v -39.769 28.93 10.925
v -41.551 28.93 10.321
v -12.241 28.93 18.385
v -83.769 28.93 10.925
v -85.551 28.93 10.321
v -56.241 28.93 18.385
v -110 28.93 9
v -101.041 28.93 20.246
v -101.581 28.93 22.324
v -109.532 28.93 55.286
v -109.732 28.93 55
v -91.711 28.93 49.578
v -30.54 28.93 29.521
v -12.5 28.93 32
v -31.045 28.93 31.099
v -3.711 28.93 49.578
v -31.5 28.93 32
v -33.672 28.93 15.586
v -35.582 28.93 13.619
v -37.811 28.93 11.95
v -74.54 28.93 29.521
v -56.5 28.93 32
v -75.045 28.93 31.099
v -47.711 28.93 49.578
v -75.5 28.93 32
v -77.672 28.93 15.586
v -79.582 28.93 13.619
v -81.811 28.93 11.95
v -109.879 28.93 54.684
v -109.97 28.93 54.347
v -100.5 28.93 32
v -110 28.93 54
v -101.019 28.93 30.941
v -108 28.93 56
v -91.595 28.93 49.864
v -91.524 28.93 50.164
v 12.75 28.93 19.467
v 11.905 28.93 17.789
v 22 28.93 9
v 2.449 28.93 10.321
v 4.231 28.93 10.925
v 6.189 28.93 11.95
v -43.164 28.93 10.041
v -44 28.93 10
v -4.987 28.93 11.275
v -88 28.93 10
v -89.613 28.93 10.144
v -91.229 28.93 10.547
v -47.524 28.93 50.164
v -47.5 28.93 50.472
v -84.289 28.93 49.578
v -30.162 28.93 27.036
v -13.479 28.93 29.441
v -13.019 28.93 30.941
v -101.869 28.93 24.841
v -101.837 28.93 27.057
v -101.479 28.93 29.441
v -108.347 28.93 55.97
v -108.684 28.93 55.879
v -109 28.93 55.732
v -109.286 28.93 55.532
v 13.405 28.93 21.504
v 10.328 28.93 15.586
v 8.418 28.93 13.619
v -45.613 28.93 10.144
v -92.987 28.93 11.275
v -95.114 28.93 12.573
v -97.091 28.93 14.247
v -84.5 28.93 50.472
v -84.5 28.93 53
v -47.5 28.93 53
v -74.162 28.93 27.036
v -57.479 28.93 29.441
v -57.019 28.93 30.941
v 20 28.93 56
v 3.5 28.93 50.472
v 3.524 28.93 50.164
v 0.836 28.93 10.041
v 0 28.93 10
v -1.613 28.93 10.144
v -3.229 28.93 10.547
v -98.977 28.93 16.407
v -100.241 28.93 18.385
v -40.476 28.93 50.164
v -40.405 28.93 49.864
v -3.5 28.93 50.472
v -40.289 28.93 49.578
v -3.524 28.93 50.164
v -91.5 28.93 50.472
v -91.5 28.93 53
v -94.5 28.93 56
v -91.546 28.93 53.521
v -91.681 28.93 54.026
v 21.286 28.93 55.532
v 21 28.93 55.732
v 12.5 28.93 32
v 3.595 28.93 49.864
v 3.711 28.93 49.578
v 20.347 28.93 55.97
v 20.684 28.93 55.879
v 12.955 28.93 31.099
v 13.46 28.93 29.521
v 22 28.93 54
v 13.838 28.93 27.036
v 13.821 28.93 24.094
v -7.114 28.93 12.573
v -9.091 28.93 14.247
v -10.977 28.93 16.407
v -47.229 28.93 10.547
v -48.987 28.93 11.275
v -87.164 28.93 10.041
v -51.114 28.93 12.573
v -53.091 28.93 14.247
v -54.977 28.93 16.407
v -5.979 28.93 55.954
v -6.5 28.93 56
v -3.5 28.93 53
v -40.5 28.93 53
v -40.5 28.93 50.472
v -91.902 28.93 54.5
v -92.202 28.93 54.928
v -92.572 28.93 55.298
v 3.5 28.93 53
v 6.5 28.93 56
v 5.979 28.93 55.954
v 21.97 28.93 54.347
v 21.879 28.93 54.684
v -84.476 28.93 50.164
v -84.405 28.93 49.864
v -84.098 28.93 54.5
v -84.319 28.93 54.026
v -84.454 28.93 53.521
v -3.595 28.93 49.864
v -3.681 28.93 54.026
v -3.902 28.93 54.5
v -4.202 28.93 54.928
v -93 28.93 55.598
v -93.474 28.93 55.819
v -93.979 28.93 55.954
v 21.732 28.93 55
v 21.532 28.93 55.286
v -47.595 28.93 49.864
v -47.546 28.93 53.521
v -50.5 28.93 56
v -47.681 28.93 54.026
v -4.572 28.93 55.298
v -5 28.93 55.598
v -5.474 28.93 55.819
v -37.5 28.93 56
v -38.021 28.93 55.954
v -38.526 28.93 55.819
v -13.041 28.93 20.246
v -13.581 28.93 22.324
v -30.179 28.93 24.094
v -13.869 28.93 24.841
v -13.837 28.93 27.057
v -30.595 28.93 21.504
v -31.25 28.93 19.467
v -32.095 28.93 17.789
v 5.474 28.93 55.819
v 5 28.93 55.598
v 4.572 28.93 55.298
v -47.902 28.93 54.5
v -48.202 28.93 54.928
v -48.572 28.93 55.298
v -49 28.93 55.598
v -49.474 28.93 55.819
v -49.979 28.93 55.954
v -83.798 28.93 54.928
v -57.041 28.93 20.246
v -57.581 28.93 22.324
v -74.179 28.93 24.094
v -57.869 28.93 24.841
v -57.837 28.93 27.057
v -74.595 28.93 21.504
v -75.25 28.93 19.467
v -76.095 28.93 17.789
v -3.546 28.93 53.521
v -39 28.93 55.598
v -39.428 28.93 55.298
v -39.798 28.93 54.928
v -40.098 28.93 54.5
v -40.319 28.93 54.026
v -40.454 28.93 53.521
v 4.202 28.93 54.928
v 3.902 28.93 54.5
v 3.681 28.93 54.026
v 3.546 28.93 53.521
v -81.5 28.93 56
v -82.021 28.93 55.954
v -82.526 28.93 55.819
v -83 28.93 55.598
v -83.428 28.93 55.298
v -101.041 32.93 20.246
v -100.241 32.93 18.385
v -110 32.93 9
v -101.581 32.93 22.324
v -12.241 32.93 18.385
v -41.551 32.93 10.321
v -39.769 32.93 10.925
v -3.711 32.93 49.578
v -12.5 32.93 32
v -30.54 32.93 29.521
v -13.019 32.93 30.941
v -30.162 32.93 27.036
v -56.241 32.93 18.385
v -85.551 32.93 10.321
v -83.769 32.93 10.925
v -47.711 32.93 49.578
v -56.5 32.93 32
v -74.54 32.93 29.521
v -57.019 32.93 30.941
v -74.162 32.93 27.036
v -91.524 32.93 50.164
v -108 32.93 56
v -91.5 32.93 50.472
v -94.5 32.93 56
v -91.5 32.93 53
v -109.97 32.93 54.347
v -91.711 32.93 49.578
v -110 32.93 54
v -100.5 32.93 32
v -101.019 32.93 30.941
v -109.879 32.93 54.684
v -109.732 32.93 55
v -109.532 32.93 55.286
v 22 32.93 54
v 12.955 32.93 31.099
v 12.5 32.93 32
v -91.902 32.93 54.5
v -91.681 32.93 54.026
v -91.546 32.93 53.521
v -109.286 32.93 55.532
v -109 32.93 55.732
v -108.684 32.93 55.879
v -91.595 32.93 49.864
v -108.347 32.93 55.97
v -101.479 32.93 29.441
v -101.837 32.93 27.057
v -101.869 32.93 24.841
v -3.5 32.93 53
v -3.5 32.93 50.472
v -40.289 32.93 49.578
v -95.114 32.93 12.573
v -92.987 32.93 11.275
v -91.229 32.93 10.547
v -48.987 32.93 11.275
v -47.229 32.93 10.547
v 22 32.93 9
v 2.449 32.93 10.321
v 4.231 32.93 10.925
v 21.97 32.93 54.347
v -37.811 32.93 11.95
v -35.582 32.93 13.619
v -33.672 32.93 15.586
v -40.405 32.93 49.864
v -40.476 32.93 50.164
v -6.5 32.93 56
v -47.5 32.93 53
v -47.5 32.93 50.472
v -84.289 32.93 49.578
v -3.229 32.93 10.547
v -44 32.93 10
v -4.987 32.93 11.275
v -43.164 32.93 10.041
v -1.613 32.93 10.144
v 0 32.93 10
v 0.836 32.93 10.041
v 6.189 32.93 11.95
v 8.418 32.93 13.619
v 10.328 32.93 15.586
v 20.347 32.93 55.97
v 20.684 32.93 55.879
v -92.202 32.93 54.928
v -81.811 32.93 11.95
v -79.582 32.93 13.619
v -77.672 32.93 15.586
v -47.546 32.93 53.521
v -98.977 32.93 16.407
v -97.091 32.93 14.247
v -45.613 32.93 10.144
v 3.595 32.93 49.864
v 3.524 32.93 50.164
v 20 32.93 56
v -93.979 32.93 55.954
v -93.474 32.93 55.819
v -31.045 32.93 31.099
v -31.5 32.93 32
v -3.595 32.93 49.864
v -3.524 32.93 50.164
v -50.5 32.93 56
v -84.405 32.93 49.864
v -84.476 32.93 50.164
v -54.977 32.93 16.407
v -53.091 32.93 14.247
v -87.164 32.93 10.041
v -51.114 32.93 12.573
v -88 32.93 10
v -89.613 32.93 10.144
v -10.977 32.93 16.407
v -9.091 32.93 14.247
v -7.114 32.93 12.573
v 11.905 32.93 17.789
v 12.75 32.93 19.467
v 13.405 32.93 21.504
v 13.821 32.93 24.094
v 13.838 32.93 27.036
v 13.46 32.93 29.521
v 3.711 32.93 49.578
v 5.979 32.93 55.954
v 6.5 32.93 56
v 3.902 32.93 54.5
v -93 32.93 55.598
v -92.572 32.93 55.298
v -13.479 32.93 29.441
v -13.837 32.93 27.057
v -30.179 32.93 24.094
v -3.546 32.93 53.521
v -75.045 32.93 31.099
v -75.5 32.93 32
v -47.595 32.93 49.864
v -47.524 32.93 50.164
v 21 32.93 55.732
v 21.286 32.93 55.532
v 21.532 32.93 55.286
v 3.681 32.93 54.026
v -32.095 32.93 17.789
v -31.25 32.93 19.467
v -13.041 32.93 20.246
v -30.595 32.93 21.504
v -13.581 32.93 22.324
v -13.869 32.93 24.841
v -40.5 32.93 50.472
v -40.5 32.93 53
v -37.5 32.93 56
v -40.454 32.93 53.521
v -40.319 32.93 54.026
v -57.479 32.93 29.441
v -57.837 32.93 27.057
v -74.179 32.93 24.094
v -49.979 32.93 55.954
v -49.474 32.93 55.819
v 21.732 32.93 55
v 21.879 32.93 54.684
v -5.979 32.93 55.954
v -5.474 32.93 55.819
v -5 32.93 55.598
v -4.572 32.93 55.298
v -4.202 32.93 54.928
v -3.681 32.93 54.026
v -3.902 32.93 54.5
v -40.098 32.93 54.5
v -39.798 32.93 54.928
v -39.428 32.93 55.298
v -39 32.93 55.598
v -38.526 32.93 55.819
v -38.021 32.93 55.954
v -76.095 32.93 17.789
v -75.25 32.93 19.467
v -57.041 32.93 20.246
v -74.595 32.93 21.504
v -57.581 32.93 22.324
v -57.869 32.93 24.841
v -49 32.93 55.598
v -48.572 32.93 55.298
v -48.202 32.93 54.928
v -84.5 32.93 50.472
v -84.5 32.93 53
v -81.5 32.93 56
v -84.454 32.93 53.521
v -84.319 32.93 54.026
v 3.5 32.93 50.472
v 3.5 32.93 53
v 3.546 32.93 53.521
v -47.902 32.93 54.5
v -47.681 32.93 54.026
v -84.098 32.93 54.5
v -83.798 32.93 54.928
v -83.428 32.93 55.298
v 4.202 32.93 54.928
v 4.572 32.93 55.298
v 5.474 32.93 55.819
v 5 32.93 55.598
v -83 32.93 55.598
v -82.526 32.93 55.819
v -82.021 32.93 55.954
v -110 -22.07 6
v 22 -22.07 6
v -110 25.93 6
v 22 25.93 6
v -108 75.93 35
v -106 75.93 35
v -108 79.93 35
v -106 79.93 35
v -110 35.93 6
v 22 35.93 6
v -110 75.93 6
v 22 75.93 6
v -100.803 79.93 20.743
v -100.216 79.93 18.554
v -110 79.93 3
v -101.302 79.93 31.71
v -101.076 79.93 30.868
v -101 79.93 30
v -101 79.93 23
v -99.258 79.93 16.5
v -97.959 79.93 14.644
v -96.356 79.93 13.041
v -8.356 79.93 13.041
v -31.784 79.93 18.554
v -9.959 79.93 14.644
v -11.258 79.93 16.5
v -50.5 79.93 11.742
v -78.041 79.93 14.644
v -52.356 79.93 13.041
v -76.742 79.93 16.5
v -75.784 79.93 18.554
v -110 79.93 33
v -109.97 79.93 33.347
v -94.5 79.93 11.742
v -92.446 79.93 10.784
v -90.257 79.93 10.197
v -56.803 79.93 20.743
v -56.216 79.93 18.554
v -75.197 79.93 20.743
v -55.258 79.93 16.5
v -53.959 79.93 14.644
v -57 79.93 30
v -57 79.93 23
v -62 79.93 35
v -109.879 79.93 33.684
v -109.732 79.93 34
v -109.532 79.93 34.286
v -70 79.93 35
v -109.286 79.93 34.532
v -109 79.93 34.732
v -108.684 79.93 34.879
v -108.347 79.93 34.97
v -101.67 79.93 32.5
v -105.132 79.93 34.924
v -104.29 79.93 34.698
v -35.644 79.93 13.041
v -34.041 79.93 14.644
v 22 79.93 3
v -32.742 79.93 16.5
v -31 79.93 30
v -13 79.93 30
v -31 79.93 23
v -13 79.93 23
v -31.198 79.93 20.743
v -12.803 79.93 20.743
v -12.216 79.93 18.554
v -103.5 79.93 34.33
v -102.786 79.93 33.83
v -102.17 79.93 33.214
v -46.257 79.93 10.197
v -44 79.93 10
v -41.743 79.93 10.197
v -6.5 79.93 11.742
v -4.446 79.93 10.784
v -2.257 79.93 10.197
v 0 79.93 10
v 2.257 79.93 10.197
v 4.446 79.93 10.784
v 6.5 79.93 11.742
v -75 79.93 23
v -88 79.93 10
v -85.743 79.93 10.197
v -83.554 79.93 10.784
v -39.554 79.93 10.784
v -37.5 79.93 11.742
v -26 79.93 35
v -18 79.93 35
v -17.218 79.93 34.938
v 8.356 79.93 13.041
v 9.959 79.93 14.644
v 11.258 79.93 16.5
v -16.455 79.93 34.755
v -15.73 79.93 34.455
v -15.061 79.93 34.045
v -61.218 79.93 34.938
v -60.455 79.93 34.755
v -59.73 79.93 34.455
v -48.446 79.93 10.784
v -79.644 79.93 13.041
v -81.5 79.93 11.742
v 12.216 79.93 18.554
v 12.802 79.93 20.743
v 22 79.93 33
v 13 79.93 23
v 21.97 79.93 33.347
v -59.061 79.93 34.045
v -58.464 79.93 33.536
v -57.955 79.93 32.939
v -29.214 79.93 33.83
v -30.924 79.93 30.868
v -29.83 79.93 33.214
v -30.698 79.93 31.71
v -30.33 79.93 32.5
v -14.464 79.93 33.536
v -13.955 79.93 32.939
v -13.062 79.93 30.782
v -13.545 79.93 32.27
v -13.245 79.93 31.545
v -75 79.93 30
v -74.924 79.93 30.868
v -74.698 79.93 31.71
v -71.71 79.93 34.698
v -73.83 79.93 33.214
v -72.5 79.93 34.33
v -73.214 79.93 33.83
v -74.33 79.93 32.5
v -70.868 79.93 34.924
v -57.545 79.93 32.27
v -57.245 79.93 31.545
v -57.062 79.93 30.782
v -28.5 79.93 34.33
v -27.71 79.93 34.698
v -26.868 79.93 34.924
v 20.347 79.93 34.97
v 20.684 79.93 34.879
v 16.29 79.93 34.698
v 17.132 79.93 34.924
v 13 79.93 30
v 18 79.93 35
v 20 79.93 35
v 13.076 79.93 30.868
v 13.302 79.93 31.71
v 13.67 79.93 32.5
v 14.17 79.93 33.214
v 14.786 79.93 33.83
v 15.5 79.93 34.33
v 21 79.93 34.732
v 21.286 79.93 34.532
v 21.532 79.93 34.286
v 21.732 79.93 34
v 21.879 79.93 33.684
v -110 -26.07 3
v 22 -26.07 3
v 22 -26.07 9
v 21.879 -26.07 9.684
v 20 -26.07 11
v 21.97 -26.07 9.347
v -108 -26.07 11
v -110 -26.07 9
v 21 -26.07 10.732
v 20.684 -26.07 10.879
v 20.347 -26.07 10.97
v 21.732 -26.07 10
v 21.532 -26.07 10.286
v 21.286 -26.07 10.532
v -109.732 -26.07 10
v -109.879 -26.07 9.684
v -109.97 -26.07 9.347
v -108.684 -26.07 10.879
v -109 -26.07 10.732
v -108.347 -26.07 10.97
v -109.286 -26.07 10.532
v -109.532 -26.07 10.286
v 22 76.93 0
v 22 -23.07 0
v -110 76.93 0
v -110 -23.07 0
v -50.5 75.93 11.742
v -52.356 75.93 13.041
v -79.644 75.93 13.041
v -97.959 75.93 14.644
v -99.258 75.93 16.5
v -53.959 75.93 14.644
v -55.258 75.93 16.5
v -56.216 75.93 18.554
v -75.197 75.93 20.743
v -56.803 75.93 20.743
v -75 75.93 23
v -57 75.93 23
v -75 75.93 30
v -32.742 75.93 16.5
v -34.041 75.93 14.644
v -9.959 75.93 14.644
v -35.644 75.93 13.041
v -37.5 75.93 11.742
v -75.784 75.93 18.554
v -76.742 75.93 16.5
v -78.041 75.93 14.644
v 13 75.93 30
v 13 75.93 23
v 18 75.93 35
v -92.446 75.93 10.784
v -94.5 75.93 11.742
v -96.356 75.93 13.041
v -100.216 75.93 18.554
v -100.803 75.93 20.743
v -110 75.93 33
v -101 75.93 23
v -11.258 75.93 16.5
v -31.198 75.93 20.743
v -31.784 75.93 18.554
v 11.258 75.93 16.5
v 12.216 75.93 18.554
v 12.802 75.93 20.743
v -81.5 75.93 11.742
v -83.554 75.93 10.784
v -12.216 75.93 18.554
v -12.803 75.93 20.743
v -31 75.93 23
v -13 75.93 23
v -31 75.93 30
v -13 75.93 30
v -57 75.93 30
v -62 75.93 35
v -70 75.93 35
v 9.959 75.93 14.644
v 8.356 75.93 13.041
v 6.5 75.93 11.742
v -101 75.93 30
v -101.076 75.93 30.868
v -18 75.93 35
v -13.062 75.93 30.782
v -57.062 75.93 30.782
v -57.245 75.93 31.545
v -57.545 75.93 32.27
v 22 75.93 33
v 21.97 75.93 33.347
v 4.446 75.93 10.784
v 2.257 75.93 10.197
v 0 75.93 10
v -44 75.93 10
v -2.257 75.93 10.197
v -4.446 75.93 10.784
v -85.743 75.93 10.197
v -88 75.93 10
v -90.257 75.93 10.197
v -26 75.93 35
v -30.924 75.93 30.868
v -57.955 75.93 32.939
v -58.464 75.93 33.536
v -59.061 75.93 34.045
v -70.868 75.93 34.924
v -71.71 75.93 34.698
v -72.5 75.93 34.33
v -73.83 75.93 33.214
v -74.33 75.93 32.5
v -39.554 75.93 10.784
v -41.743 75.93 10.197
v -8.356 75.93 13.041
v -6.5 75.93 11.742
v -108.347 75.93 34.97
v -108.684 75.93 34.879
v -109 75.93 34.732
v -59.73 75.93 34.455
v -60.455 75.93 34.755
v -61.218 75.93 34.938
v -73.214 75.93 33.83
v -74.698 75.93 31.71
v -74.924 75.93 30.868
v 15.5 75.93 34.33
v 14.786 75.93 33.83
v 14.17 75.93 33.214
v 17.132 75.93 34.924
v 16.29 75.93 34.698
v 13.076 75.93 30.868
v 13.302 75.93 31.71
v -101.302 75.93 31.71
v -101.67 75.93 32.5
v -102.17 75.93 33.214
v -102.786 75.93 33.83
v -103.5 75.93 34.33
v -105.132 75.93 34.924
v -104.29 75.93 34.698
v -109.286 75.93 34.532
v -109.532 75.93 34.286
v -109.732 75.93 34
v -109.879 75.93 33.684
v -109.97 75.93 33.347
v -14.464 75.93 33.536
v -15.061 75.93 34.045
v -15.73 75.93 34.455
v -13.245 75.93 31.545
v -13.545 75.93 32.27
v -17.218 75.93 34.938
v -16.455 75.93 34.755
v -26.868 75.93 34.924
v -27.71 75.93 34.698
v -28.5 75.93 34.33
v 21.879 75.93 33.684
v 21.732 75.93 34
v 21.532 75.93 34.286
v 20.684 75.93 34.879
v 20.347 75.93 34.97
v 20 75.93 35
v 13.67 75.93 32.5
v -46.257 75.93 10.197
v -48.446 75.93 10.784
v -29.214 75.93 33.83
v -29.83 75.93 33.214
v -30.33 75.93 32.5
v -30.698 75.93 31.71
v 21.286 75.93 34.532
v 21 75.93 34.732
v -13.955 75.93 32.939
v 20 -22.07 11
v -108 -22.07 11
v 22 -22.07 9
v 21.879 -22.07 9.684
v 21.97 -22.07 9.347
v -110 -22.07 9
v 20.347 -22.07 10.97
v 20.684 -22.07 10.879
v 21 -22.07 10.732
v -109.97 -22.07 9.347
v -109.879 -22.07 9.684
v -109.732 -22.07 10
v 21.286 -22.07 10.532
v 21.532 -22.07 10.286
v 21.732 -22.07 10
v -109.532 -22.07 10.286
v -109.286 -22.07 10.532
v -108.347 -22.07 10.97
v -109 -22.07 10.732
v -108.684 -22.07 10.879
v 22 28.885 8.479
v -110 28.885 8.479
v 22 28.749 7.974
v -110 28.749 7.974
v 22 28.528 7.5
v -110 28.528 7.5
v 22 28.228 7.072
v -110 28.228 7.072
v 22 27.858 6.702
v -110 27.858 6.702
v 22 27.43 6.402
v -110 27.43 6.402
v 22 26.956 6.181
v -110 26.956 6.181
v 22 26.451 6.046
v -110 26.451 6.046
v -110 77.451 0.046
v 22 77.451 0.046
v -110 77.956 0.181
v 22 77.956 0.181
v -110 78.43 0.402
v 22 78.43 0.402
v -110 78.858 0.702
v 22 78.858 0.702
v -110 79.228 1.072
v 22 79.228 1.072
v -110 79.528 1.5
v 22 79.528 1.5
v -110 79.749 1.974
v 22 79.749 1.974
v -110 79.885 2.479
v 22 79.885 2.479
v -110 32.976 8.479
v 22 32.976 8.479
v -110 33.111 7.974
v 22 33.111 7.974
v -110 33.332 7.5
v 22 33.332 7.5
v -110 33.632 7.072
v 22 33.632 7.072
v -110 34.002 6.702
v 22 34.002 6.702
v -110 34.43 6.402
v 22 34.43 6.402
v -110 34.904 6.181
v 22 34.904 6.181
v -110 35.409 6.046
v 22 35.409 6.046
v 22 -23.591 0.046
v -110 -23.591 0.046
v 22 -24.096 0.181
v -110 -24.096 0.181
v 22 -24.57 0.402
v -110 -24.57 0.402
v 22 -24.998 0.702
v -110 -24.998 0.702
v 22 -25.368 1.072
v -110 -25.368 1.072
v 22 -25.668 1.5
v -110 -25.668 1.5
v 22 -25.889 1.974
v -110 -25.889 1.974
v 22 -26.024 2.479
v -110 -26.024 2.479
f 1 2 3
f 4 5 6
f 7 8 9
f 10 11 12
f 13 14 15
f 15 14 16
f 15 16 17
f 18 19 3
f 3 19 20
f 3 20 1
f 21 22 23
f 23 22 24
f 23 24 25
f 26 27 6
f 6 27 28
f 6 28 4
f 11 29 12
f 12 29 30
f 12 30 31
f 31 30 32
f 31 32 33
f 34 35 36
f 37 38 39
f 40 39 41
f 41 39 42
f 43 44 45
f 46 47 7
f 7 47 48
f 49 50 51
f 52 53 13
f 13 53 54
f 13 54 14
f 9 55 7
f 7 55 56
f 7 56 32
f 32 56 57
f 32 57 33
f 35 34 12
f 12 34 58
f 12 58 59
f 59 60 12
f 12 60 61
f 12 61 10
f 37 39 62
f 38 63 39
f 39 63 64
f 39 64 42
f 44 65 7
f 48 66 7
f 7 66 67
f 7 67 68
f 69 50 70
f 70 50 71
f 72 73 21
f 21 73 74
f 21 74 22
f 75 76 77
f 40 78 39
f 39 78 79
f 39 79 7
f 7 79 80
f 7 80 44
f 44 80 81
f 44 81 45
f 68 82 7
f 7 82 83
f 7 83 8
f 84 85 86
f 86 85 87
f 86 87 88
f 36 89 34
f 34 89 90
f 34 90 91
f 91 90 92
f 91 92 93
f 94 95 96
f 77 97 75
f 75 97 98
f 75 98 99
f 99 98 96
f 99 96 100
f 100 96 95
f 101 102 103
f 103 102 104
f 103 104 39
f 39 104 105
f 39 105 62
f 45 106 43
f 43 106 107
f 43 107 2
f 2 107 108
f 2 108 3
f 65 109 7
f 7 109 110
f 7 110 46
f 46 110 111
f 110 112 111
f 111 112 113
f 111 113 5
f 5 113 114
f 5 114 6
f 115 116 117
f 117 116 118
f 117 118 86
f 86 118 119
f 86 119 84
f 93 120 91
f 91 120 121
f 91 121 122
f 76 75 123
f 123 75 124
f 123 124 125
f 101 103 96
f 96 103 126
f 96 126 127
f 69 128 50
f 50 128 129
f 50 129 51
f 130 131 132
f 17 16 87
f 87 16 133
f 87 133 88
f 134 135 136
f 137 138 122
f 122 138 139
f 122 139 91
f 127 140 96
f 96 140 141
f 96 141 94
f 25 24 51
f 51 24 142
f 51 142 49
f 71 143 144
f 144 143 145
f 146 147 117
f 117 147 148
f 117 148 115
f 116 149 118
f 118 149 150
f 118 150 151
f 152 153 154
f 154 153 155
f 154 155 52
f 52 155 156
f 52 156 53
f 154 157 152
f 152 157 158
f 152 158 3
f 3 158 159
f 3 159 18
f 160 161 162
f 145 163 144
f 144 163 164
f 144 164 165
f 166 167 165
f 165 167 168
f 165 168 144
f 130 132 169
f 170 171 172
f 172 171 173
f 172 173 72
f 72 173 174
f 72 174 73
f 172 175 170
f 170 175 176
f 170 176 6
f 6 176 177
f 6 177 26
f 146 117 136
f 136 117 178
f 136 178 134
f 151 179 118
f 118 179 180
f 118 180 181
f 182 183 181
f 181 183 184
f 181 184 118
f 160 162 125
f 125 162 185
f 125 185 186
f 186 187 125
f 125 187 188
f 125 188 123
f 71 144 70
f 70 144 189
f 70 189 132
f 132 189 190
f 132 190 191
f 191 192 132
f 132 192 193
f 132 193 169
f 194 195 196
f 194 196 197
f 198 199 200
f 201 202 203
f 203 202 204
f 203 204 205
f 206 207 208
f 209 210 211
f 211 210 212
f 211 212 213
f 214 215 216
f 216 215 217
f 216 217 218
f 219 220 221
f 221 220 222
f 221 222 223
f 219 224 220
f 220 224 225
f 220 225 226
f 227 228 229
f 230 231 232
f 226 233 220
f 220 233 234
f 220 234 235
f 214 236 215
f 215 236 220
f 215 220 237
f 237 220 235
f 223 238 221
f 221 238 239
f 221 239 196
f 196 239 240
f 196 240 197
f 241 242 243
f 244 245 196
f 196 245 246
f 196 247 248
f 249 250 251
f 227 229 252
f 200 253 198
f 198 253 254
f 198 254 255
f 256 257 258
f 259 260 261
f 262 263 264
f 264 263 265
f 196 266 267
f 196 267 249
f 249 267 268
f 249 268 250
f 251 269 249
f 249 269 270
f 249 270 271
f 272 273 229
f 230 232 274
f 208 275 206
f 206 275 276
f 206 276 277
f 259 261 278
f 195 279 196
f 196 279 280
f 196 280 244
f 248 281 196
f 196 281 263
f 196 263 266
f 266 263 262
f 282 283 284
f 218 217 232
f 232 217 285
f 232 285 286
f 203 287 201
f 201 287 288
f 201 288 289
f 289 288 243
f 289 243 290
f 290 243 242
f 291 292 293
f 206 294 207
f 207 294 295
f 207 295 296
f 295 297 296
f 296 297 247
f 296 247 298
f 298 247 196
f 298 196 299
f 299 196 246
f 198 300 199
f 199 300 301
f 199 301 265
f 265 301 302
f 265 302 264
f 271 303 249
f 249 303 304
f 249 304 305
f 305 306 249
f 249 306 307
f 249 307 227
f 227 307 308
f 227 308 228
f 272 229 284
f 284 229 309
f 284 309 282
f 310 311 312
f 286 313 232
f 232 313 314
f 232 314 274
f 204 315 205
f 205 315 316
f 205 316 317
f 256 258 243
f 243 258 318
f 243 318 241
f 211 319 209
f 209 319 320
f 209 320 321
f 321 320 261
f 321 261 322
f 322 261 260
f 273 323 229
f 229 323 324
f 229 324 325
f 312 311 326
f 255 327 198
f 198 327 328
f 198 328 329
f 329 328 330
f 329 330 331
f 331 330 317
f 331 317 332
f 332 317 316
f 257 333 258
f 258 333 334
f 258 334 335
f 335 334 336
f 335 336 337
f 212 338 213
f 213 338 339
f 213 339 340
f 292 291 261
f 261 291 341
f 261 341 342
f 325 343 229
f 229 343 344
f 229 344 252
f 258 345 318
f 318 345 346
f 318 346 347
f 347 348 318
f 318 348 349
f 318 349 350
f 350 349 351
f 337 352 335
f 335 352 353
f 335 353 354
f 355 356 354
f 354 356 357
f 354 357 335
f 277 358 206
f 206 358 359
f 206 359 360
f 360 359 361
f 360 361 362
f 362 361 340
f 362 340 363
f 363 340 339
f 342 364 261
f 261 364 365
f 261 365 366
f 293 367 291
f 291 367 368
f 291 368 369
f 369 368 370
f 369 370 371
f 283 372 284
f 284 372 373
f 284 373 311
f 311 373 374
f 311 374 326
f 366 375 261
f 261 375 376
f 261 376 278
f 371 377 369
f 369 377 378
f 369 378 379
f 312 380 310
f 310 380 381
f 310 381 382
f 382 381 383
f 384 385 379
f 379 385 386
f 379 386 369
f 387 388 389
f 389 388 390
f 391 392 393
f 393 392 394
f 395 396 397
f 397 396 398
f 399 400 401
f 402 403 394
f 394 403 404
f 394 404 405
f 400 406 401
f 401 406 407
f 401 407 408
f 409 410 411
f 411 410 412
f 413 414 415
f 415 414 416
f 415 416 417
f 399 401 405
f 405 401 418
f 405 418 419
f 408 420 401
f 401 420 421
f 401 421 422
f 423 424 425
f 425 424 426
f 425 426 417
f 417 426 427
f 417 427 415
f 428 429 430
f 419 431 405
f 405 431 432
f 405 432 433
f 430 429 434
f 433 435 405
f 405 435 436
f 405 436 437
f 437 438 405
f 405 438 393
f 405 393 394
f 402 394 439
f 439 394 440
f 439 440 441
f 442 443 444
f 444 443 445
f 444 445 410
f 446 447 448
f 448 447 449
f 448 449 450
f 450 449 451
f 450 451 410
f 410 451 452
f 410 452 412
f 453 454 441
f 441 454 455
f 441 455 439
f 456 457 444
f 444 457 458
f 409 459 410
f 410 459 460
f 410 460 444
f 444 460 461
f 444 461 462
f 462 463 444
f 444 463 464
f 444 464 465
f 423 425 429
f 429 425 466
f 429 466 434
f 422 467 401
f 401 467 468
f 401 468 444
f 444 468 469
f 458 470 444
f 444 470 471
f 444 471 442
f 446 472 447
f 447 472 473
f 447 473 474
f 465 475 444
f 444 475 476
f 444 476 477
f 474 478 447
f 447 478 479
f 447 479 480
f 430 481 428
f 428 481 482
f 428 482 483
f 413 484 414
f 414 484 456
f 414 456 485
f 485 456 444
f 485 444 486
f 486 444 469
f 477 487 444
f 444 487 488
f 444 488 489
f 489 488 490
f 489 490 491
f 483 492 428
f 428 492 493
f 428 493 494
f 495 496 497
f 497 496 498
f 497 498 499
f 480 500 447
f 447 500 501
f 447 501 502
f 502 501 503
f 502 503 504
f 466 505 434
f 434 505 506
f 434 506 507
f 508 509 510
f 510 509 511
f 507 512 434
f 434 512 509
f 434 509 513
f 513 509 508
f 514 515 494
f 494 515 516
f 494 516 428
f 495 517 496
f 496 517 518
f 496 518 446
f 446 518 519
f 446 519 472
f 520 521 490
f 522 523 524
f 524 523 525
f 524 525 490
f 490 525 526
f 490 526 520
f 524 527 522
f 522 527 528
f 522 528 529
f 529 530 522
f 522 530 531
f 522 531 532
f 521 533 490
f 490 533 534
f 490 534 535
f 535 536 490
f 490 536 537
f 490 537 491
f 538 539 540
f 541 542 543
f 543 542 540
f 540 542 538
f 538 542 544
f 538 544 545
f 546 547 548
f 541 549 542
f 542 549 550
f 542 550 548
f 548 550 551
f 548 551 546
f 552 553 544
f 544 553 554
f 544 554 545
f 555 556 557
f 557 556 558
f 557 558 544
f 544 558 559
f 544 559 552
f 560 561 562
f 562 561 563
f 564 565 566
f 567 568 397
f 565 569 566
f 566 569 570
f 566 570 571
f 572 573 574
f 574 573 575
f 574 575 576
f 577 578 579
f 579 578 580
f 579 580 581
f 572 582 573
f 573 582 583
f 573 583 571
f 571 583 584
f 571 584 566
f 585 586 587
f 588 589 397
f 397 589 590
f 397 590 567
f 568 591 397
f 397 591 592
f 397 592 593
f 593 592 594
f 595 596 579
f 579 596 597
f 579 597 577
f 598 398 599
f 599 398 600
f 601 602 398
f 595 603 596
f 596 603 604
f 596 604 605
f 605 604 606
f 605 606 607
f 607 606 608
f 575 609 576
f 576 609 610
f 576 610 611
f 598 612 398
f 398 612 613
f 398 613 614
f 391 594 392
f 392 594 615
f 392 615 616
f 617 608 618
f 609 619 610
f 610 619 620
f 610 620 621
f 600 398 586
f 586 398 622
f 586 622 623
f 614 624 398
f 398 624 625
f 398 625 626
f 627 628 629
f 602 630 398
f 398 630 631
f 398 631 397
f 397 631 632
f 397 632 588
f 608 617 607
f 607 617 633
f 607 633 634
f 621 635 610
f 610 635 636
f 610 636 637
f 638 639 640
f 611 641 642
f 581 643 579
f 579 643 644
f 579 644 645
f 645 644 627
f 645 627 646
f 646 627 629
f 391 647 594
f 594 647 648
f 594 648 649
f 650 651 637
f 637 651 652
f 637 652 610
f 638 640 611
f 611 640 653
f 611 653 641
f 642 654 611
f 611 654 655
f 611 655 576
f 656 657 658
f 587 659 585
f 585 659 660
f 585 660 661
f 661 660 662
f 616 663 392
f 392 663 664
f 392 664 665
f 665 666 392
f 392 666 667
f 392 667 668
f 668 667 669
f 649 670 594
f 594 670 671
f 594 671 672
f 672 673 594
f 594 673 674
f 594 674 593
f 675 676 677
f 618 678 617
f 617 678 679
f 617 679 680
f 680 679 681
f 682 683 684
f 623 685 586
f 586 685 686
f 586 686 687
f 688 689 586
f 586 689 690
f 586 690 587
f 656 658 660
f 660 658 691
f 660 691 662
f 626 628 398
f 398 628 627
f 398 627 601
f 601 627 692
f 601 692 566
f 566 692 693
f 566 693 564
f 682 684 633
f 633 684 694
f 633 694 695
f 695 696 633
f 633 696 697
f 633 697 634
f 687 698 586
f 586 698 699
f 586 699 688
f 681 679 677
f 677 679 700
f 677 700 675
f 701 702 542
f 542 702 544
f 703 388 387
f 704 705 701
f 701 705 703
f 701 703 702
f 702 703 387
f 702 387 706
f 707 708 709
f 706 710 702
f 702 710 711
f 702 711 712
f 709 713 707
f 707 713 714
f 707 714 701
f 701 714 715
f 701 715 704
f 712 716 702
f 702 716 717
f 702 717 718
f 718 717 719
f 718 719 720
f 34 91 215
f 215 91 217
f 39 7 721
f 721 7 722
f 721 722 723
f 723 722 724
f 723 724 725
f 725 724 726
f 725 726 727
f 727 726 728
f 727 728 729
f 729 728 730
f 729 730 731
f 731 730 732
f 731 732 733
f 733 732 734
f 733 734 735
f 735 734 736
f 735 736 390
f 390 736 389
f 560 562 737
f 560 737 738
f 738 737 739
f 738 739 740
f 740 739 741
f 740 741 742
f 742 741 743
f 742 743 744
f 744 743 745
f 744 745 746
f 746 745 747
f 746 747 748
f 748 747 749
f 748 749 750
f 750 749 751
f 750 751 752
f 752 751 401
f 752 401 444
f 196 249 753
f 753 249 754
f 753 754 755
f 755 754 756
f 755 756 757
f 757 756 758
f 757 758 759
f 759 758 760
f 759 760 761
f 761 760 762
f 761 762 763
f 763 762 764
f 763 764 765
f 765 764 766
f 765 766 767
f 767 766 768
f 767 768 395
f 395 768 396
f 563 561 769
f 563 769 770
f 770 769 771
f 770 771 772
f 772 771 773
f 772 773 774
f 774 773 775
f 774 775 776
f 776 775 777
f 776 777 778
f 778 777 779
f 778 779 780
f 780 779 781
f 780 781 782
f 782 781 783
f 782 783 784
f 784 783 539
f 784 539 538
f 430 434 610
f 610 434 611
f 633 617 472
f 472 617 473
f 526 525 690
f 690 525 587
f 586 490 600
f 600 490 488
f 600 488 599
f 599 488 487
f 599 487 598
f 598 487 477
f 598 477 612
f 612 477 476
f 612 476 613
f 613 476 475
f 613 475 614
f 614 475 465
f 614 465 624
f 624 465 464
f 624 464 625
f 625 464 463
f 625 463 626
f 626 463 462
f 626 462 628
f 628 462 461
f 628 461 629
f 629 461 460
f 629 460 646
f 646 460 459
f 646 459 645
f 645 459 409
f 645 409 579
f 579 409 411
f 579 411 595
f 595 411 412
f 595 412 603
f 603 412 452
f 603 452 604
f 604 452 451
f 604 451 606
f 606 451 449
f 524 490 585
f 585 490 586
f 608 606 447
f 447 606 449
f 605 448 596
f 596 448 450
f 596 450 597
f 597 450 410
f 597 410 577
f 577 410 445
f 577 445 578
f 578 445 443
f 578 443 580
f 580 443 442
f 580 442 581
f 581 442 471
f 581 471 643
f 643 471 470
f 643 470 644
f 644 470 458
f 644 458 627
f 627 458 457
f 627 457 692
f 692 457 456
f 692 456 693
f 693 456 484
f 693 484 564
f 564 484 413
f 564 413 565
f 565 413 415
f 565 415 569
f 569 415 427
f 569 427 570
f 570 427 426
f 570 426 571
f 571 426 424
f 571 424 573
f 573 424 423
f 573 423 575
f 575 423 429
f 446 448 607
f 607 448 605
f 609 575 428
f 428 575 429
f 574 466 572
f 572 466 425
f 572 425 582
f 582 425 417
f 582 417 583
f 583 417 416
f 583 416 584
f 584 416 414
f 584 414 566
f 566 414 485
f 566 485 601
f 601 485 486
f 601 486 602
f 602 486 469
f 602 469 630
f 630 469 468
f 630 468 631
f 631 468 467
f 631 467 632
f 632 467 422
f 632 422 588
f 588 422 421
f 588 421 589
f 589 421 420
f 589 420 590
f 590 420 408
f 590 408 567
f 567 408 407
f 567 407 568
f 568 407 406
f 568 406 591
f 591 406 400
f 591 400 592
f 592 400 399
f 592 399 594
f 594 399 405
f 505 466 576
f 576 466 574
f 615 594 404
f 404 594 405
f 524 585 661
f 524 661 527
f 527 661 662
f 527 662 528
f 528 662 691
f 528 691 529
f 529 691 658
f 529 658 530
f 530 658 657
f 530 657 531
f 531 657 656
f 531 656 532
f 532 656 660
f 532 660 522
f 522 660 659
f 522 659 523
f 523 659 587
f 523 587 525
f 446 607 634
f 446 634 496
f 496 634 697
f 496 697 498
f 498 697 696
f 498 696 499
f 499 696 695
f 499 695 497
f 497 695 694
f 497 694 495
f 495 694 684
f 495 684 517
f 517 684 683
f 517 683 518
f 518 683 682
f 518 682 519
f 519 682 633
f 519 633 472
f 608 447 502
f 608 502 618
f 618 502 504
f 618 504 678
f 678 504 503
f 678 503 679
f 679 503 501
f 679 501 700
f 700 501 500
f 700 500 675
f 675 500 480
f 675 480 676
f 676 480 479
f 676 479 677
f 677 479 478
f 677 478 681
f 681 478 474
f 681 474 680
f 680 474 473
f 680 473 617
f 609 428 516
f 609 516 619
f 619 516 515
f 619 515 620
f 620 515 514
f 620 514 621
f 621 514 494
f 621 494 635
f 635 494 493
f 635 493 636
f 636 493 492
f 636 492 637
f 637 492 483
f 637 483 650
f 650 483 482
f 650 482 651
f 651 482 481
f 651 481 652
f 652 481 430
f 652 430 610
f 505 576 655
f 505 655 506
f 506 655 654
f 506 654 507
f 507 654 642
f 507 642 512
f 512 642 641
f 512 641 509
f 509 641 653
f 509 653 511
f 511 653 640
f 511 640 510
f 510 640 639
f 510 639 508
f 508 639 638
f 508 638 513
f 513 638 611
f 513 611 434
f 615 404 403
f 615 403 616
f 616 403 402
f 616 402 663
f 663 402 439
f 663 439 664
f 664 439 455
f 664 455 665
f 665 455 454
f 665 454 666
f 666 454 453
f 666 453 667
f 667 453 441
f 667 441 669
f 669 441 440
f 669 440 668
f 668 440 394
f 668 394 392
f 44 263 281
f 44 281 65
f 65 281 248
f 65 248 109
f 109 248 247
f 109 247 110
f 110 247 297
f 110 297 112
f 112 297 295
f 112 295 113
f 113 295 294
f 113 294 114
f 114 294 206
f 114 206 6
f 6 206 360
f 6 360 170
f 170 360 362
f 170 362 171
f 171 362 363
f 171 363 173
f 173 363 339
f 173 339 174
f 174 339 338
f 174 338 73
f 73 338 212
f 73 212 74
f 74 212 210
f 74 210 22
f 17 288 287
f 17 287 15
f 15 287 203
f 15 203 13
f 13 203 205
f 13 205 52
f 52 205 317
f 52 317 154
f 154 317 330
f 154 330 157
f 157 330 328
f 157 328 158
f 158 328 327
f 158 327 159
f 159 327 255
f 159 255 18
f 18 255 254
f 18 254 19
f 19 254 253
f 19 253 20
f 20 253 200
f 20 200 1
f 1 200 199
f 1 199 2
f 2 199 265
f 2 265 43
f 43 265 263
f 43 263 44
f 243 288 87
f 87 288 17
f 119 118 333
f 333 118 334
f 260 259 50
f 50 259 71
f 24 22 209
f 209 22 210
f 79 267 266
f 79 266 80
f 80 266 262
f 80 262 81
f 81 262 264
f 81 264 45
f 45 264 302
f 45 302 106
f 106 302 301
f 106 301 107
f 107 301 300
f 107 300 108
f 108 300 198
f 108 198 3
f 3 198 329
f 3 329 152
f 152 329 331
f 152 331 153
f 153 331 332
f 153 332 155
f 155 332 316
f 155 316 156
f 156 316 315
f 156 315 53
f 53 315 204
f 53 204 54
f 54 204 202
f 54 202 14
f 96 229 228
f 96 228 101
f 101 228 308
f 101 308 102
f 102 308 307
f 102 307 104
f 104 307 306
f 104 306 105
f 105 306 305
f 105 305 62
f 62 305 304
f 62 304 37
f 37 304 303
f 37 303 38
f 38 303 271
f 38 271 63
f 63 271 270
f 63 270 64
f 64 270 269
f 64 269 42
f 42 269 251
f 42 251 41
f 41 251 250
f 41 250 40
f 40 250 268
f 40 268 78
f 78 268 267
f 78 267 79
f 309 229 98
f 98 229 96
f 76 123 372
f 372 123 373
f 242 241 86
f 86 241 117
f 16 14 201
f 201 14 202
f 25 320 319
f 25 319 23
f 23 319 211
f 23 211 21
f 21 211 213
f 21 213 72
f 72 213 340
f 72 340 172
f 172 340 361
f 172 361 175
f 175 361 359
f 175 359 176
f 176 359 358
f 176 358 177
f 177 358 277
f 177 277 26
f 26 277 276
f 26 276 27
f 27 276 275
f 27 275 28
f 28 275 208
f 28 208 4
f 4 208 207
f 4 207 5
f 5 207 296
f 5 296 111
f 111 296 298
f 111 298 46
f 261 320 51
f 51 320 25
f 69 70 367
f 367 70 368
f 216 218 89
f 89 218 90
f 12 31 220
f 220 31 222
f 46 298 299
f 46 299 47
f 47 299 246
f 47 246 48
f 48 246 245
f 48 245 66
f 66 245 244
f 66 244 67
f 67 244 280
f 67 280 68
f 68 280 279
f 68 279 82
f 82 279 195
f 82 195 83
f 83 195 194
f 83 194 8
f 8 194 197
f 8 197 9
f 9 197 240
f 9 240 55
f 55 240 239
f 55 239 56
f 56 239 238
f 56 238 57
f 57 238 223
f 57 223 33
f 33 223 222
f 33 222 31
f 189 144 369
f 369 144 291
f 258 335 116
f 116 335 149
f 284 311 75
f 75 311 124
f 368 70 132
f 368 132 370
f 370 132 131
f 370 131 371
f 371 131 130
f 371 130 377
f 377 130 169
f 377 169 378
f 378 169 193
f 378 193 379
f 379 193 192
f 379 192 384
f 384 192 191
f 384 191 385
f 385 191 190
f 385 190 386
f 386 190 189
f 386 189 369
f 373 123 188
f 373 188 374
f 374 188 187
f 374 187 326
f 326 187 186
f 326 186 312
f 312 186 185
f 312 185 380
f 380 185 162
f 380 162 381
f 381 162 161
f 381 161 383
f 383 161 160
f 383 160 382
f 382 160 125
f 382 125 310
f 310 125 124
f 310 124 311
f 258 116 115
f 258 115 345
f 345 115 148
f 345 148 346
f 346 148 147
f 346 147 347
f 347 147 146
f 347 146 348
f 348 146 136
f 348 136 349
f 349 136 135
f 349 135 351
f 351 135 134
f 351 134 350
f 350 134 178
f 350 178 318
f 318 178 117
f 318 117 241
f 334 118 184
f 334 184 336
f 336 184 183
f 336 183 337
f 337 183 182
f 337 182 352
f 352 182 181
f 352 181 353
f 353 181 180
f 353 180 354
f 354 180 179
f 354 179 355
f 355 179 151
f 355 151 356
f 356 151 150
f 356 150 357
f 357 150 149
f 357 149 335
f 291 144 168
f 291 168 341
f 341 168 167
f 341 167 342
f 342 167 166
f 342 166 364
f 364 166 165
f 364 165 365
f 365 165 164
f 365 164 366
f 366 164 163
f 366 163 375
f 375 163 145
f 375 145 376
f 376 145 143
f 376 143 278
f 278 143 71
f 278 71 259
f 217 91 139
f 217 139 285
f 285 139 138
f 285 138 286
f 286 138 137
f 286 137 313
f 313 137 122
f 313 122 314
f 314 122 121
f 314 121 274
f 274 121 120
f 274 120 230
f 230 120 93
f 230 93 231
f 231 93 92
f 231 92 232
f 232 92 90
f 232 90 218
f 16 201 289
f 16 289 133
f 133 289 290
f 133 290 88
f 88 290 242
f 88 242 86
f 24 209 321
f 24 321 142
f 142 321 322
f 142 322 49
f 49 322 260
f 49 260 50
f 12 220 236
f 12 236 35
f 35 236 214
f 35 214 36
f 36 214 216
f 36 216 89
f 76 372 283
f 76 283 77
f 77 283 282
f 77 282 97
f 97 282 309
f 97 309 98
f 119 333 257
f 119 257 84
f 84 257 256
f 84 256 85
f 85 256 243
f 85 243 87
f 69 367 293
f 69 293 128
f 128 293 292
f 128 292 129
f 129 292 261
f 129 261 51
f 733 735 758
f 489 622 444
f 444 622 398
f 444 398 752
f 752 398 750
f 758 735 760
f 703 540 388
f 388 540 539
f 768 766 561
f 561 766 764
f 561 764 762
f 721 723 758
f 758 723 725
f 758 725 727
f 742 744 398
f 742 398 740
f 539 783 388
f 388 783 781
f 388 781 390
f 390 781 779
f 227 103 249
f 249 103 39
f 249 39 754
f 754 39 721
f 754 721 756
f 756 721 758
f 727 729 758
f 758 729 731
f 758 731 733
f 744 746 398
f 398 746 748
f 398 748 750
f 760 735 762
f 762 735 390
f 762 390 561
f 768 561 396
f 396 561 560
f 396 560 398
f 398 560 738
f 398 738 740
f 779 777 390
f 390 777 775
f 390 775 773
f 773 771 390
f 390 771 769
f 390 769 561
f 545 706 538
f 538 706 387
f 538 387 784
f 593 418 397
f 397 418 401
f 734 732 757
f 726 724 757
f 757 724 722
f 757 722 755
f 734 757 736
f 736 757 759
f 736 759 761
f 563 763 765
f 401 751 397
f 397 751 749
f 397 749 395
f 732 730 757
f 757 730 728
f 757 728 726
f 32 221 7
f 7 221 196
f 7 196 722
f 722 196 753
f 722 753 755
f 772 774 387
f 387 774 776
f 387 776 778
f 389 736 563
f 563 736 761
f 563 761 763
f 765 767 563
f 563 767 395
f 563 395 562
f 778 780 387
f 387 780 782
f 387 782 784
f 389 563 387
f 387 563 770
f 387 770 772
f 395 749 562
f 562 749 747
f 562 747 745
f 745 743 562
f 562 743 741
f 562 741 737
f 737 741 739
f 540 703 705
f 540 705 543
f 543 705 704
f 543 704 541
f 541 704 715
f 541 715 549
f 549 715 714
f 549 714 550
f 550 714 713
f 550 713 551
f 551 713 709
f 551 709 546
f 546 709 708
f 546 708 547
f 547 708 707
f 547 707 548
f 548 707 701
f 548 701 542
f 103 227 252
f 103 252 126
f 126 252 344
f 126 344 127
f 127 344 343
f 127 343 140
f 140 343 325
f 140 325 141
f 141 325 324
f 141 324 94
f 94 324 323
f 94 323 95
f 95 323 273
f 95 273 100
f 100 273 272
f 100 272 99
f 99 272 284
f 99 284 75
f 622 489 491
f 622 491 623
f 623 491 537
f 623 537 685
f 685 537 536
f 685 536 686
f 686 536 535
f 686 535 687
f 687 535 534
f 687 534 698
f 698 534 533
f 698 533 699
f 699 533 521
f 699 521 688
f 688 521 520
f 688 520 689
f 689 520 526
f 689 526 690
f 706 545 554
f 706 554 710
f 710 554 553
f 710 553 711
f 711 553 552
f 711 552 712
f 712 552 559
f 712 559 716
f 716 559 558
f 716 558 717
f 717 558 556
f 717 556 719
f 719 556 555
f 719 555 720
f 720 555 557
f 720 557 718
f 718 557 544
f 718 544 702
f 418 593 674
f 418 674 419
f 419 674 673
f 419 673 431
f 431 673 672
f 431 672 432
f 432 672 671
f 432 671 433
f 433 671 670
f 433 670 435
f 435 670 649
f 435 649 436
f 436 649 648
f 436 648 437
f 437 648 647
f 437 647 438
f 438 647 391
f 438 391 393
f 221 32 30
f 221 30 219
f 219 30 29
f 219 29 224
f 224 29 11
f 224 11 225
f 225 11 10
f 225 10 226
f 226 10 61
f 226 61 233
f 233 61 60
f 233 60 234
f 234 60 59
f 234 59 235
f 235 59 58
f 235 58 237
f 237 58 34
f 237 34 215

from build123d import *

# Parameters (mm, degrees)
SKETCH1_W           = 238
SKETCH1_H           = 43
SKETCH1_H_2         = 4
SKETCH1_H_3         = 51
BOSS_EXTRUDE1_DEPTH = 6
SKETCH2_W           = 238
SKETCH2_H           = 4
BOSS_EXTRUDE2_DEPTH = 35
SKETCH3_W           = 26
SKETCH3_H           = 12
CUT_EXTRUDE1_DEPTH  = 6
FILLET1_R           = 5
SKETCH4_W           = 238
SKETCH4_H           = 64
BOSS_EXTRUDE3_DEPTH = 4
SKETCH6_W           = 238
SKETCH6_H           = 11
BOSS_EXTRUDE4_DEPTH = 4
CUT_EXTRUDE2_DEPTH  = 10
SKETCH8_W           = 238
SKETCH8_H           = 8
CUT_EXTRUDE3_DEPTH  = 60
FILLET2_R           = 3
FILLET3_R           = 2
FILLET4_R           = 3
CUT_EXTRUDE4_DEPTH  = 150
FILLET5_R           = 2


with BuildPart() as part:
    # Sketch1 → Boss-Extrude1 (new body)
    with BuildSketch(Plane.XY):
        with Locations((0, 54.430088496)):
            Rectangle(SKETCH1_W, SKETCH1_H)
        Polygon((-119, 79.930088496), (-119, 75.930088496), (119, 75.930088496), (119, 79.930088496), (101, 79.930088496), (75, 79.930088496), (57.077876106, 79.930088496), (57, 79.930088496), (31, 79.930088496), (13, 79.930088496), (-13, 79.930088496), (-31, 79.930088496), (-57, 79.930088496), (-75, 79.930088496), (-101, 79.930088496), align=None)
        with Locations((0, 30.930088496)):
            Rectangle(SKETCH1_W, SKETCH1_H_2)
        with Locations((0, 3.430088496)):
            Rectangle(SKETCH1_W, SKETCH1_H_3)
        with Locations((0, -24.069911504)):
            Rectangle(SKETCH1_W, SKETCH1_H_2)
    extrude(amount=BOSS_EXTRUDE1_DEPTH)

    # Sketch2 → Boss-Extrude2 (add)
    with BuildSketch(Plane.XY):
        with Locations((0, 77.930088496)):
            Rectangle(SKETCH2_W, SKETCH2_H)
    extrude(amount=BOSS_EXTRUDE2_DEPTH)

    # Sketch3 → Cut-Extrude1 (cut)
    with BuildSketch(Plane(origin=(0, 79.930088496, 0), x_dir=(1, 0, 0), z_dir=(0, 1, 0))):
        with BuildLine():
            ThreePointArc((-101, -23), (-88, -10), (-75, -23))
            Line((-75, -23), (-101, -23))
        make_face()
        with Locations((-88, -29)):
            Rectangle(SKETCH3_W, SKETCH3_H)
        with BuildLine():
            ThreePointArc((-57, -23), (-44, -10), (-31, -23))
            Line((-31, -23), (-31, -35))
            Line((-31, -35), (-57, -35))
            Line((-57, -35), (-57, -23))
        make_face()
        with BuildLine():
            Line((13, -35), (13, -23))
            ThreePointArc((13, -23), (0, -10), (-13, -23))
            Line((-13, -23), (-13, -35))
            Line((-13, -35), (13, -35))
        make_face()
        with BuildLine():
            Line((57, -35), (57, -23))
            ThreePointArc((57, -23), (44, -10), (31, -23))
            Line((31, -23), (31, -35))
            Line((31, -35), (57, -35))
        make_face()
        with BuildLine():
            Line((101, -35), (101, -23))
            ThreePointArc((101, -23), (88, -10), (75, -23))
            Line((75, -23), (75, -35))
            Line((75, -35), (101, -35))
        make_face()
    extrude(amount=-CUT_EXTRUDE1_DEPTH, mode=Mode.SUBTRACT)

    # Fillet1
    fillet1_edges = [part.edges().sort_by_distance(p)[0] for p in [
        (-119, 77.930088496, 35),
        (119, 77.930088496, 35),
        (75, 77.930088496, 35),
        (101, 77.930088496, 35),
        (31, 77.930088496, 35),
        (57, 77.930088496, 35),
        (-13, 77.930088496, 35),
        (13, 77.930088496, 35),
        (-57, 77.930088496, 35),
        (-31, 77.930088496, 35),
        (-101, 77.930088496, 35),
        (-75, 77.930088496, 35),
    ]]
    fillet(fillet1_edges, radius=FILLET1_R)

    # Sketch4 → Boss-Extrude3 (add)
    with BuildSketch(Plane(origin=(0, 32.930088496, 0), x_dir=(1, 0, 0), z_dir=(0, 1, 0))):
        with Locations((0, -32)):
            Rectangle(SKETCH4_W, SKETCH4_H)
    extrude(amount=-BOSS_EXTRUDE3_DEPTH)

    # Sketch6 → Boss-Extrude4 (add)
    with BuildSketch(Plane(origin=(0, -22.069911504, 0), x_dir=(1, 0, 0), z_dir=(0, 1, 0))):
        with Locations((0, -5.5)):
            Rectangle(SKETCH6_W, SKETCH6_H)
    extrude(amount=-BOSS_EXTRUDE4_DEPTH)

    # Sketch5 → Cut-Extrude2 (cut)
    with BuildSketch(Plane(origin=(0, 32.930088496, 0), x_dir=(1, 0, 0), z_dir=(0, 1, 0))):
        with BuildLine():
            Line((-40.5, -50), (-40.5, -56))
            Line((-40.5, -56), (-47.5, -56))
            Line((-47.5, -56), (-47.5, -50))
            Line((-47.5, -50), (-56.5, -32))
            add(Edge.make_bspline(
                [(-56.5, -32), (-58.118524022, -29.356350797), (-58.608084098, -22.1569248), (-53.268932872, -13.423946955), (-48.161141466, -10.022473266), (-44, -10)],
                knots=[0, 0, 0, 0, 0.224491173, 0.274489259, 0.499980858, 0.499980858, 0.499980858, 0.499980858], degree=3))
            add(Edge.make_bspline(
                [(-31.5, -32), (-29.881475978, -29.356350797), (-29.391915902, -22.1569248), (-34.731067128, -13.423946955), (-39.838858534, -10.022473266), (-44, -10)],
                knots=[0, 0, 0, 0, 0.224491173, 0.274489259, 0.499980858, 0.499980858, 0.499980858, 0.499980858], degree=3))
            Line((-31.5, -32), (-40.5, -50))
        make_face()
        with BuildLine():
            Line((-84.5, -50), (-75.5, -32))
            add(Edge.make_bspline(
                [(-75.5, -32), (-73.881475978, -29.356350797), (-73.391915902, -22.1569248), (-78.731067128, -13.423946955), (-83.838858534, -10.022473266), (-88, -10)],
                knots=[0, 0, 0, 0, 0.224491173, 0.274489259, 0.499980858, 0.499980858, 0.499980858, 0.499980858], degree=3))
            add(Edge.make_bspline(
                [(-100.5, -32), (-102.118524022, -29.356350797), (-102.608084098, -22.1569248), (-97.268932872, -13.423946955), (-92.161141466, -10.022473266), (-88, -10)],
                knots=[0, 0, 0, 0, 0.224491173, 0.274489259, 0.499980858, 0.499980858, 0.499980858, 0.499980858], degree=3))
            Line((-100.5, -32), (-91.5, -50))
            Line((-91.5, -50), (-91.5, -56))
            Line((-91.5, -56), (-84.5, -56))
            Line((-84.5, -56), (-84.5, -50))
        make_face()
        with BuildLine():
            Line((3.5, -50), (12.5, -32))
            add(Edge.make_bspline(
                [(12.5, -32), (14.118524022, -29.356350797), (14.608084098, -22.1569248), (9.268932872, -13.423946955), (4.161141466, -10.022473266), (0, -10)],
                knots=[0, 0, 0, 0, 0.224491173, 0.274489259, 0.499980858, 0.499980858, 0.499980858, 0.499980858], degree=3))
            add(Edge.make_bspline(
                [(-12.5, -32), (-14.118524022, -29.356350797), (-14.608084098, -22.1569248), (-9.268932872, -13.423946955), (-4.161141466, -10.022473266), (0, -10)],
                knots=[0, 0, 0, 0, 0.224491173, 0.274489259, 0.499980858, 0.499980858, 0.499980858, 0.499980858], degree=3))
            Line((-12.5, -32), (-3.5, -50))
            Line((-3.5, -50), (-3.5, -56))
            Line((-3.5, -56), (3.5, -56))
            Line((3.5, -56), (3.5, -50))
        make_face()
    extrude(amount=-CUT_EXTRUDE2_DEPTH, mode=Mode.SUBTRACT)

    # Sketch8 → Cut-Extrude3 (cut)
    with BuildSketch(Plane(origin=(0, 0, 0), x_dir=(1, 0, 0), z_dir=(0, 1, 0))):
        with Locations((0, -60)):
            Rectangle(SKETCH8_W, SKETCH8_H)
    extrude(amount=CUT_EXTRUDE3_DEPTH, mode=Mode.SUBTRACT)

    # Fillet2
    fillet2_edges = [part.edges().sort_by_distance(p)[0] for p in [
        (-84.5, 30.930088496, 56),
        (-91.5, 30.930088496, 56),
        (3.5, 30.930088496, 56),
        (-3.5, 30.930088496, 56),
        (-40.5, 30.930088496, 56),
        (-47.5, 30.930088496, 56),
    ]]
    fillet(fillet2_edges, radius=FILLET2_R)

    # Fillet3
    fillet3_edges = [part.edges().sort_by_distance(p)[0] for p in [
        (-84.5, 30.930088496, 50),
        (-91.5, 30.930088496, 50),
        (3.5, 30.930088496, 50),
        (-3.5, 30.930088496, 50),
        (-40.5, 30.930088496, 50),
        (-47.5, 30.930088496, 50),
    ]]
    fillet(fillet3_edges, radius=FILLET3_R)

    # Fillet4
    fillet4_edges = [part.edges().sort_by_distance(p)[0] for p in [
        (0, 28.930088496, 6),
        (0, 32.930088496, 6),
        (0, -26.069911504, 0),
        (0, 79.930088496, 0),
    ]]
    fillet(fillet4_edges, radius=FILLET4_R)

    # Sketch9 → Cut-Extrude4 (cut, symmetric)
    with BuildSketch(Plane(origin=(0, 0, 0), x_dir=(1, 0, 0), z_dir=(0, 1, 0))):
        Polygon((-110, -70.570691383), (-110, -35), (-110, 17.336036992), (-146.355677451, 17.336036992), (-144.312296295, -70.570691383), align=None)
        Polygon((136.221626858, 30.554600482), (22, 30.554600482), (22, -35), (22, -79.242199879), (136.221626858, -79.242199879), align=None)
    extrude(amount=CUT_EXTRUDE4_DEPTH, both=True, mode=Mode.SUBTRACT)

    # Fillet5
    fillet5_edges = [part.edges().sort_by_distance(p)[0] for p in [
        (-110, 77.930088496, 35),
        (-110, 30.930088496, 56),
        (-110, -24.069911504, 11),
        (22, 30.930088496, 56),
        (22, -24.069911504, 11),
        (22, 77.930088496, 35),
    ]]
    fillet(fillet5_edges, radius=FILLET5_R)


solid = part.part
